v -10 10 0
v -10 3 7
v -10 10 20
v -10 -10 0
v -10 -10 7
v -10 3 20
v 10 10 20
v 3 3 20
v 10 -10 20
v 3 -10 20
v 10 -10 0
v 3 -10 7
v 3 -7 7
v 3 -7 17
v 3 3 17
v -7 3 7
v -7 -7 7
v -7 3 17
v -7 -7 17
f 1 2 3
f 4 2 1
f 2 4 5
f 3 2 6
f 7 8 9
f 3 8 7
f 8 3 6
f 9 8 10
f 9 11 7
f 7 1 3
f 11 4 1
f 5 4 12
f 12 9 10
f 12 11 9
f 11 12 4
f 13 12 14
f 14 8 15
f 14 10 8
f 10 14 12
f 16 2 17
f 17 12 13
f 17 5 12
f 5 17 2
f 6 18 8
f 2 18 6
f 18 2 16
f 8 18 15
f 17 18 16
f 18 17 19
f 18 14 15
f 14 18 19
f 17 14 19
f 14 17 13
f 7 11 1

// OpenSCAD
/*
	resinCut: The resin.io logo cut diagonally so that it can lay on a wall and look similar to the image version.

	PARAMETERS
		edge: <Number> The length of the edge of the logo's cube.
		depth: <Number ∈ [0, 100]>
*/
module resinCut(edge = 20, depth = 100) {
	module resinLogo() {
		color([247/255, 195/255, 15/255]) {
			// Main cube
			difference() {
				cube(size = [100, 100, 100], center = false);
				translate([-35, -35, 35]) cube(size = [100, 100, 100], center = false);
			}

			// Inner cube
			translate([15, 15, 35]) cube(size = [50, 50, 50], center = false);
		}
	}

	depth = (depth > 100)? 100 : ((depth < 0)? 0 : depth);
	echo(depth);

	a = 200 - depth;
	b = 100 - a;
	vert = [
		[a, b, b],
		[b, a, b],
		[a, a, b],
		[a, a, a],
	];

	face = [
		[0, 2, 1],
		[0, 3, 2],
		[1, 2, 3],
		[0, 1, 3],
	];

	scale(edge / 100)
	translate([-50, -50, 0])
	difference() {
		resinLogo();
		polyhedron(vert, face);
	}
}

resinCut();
